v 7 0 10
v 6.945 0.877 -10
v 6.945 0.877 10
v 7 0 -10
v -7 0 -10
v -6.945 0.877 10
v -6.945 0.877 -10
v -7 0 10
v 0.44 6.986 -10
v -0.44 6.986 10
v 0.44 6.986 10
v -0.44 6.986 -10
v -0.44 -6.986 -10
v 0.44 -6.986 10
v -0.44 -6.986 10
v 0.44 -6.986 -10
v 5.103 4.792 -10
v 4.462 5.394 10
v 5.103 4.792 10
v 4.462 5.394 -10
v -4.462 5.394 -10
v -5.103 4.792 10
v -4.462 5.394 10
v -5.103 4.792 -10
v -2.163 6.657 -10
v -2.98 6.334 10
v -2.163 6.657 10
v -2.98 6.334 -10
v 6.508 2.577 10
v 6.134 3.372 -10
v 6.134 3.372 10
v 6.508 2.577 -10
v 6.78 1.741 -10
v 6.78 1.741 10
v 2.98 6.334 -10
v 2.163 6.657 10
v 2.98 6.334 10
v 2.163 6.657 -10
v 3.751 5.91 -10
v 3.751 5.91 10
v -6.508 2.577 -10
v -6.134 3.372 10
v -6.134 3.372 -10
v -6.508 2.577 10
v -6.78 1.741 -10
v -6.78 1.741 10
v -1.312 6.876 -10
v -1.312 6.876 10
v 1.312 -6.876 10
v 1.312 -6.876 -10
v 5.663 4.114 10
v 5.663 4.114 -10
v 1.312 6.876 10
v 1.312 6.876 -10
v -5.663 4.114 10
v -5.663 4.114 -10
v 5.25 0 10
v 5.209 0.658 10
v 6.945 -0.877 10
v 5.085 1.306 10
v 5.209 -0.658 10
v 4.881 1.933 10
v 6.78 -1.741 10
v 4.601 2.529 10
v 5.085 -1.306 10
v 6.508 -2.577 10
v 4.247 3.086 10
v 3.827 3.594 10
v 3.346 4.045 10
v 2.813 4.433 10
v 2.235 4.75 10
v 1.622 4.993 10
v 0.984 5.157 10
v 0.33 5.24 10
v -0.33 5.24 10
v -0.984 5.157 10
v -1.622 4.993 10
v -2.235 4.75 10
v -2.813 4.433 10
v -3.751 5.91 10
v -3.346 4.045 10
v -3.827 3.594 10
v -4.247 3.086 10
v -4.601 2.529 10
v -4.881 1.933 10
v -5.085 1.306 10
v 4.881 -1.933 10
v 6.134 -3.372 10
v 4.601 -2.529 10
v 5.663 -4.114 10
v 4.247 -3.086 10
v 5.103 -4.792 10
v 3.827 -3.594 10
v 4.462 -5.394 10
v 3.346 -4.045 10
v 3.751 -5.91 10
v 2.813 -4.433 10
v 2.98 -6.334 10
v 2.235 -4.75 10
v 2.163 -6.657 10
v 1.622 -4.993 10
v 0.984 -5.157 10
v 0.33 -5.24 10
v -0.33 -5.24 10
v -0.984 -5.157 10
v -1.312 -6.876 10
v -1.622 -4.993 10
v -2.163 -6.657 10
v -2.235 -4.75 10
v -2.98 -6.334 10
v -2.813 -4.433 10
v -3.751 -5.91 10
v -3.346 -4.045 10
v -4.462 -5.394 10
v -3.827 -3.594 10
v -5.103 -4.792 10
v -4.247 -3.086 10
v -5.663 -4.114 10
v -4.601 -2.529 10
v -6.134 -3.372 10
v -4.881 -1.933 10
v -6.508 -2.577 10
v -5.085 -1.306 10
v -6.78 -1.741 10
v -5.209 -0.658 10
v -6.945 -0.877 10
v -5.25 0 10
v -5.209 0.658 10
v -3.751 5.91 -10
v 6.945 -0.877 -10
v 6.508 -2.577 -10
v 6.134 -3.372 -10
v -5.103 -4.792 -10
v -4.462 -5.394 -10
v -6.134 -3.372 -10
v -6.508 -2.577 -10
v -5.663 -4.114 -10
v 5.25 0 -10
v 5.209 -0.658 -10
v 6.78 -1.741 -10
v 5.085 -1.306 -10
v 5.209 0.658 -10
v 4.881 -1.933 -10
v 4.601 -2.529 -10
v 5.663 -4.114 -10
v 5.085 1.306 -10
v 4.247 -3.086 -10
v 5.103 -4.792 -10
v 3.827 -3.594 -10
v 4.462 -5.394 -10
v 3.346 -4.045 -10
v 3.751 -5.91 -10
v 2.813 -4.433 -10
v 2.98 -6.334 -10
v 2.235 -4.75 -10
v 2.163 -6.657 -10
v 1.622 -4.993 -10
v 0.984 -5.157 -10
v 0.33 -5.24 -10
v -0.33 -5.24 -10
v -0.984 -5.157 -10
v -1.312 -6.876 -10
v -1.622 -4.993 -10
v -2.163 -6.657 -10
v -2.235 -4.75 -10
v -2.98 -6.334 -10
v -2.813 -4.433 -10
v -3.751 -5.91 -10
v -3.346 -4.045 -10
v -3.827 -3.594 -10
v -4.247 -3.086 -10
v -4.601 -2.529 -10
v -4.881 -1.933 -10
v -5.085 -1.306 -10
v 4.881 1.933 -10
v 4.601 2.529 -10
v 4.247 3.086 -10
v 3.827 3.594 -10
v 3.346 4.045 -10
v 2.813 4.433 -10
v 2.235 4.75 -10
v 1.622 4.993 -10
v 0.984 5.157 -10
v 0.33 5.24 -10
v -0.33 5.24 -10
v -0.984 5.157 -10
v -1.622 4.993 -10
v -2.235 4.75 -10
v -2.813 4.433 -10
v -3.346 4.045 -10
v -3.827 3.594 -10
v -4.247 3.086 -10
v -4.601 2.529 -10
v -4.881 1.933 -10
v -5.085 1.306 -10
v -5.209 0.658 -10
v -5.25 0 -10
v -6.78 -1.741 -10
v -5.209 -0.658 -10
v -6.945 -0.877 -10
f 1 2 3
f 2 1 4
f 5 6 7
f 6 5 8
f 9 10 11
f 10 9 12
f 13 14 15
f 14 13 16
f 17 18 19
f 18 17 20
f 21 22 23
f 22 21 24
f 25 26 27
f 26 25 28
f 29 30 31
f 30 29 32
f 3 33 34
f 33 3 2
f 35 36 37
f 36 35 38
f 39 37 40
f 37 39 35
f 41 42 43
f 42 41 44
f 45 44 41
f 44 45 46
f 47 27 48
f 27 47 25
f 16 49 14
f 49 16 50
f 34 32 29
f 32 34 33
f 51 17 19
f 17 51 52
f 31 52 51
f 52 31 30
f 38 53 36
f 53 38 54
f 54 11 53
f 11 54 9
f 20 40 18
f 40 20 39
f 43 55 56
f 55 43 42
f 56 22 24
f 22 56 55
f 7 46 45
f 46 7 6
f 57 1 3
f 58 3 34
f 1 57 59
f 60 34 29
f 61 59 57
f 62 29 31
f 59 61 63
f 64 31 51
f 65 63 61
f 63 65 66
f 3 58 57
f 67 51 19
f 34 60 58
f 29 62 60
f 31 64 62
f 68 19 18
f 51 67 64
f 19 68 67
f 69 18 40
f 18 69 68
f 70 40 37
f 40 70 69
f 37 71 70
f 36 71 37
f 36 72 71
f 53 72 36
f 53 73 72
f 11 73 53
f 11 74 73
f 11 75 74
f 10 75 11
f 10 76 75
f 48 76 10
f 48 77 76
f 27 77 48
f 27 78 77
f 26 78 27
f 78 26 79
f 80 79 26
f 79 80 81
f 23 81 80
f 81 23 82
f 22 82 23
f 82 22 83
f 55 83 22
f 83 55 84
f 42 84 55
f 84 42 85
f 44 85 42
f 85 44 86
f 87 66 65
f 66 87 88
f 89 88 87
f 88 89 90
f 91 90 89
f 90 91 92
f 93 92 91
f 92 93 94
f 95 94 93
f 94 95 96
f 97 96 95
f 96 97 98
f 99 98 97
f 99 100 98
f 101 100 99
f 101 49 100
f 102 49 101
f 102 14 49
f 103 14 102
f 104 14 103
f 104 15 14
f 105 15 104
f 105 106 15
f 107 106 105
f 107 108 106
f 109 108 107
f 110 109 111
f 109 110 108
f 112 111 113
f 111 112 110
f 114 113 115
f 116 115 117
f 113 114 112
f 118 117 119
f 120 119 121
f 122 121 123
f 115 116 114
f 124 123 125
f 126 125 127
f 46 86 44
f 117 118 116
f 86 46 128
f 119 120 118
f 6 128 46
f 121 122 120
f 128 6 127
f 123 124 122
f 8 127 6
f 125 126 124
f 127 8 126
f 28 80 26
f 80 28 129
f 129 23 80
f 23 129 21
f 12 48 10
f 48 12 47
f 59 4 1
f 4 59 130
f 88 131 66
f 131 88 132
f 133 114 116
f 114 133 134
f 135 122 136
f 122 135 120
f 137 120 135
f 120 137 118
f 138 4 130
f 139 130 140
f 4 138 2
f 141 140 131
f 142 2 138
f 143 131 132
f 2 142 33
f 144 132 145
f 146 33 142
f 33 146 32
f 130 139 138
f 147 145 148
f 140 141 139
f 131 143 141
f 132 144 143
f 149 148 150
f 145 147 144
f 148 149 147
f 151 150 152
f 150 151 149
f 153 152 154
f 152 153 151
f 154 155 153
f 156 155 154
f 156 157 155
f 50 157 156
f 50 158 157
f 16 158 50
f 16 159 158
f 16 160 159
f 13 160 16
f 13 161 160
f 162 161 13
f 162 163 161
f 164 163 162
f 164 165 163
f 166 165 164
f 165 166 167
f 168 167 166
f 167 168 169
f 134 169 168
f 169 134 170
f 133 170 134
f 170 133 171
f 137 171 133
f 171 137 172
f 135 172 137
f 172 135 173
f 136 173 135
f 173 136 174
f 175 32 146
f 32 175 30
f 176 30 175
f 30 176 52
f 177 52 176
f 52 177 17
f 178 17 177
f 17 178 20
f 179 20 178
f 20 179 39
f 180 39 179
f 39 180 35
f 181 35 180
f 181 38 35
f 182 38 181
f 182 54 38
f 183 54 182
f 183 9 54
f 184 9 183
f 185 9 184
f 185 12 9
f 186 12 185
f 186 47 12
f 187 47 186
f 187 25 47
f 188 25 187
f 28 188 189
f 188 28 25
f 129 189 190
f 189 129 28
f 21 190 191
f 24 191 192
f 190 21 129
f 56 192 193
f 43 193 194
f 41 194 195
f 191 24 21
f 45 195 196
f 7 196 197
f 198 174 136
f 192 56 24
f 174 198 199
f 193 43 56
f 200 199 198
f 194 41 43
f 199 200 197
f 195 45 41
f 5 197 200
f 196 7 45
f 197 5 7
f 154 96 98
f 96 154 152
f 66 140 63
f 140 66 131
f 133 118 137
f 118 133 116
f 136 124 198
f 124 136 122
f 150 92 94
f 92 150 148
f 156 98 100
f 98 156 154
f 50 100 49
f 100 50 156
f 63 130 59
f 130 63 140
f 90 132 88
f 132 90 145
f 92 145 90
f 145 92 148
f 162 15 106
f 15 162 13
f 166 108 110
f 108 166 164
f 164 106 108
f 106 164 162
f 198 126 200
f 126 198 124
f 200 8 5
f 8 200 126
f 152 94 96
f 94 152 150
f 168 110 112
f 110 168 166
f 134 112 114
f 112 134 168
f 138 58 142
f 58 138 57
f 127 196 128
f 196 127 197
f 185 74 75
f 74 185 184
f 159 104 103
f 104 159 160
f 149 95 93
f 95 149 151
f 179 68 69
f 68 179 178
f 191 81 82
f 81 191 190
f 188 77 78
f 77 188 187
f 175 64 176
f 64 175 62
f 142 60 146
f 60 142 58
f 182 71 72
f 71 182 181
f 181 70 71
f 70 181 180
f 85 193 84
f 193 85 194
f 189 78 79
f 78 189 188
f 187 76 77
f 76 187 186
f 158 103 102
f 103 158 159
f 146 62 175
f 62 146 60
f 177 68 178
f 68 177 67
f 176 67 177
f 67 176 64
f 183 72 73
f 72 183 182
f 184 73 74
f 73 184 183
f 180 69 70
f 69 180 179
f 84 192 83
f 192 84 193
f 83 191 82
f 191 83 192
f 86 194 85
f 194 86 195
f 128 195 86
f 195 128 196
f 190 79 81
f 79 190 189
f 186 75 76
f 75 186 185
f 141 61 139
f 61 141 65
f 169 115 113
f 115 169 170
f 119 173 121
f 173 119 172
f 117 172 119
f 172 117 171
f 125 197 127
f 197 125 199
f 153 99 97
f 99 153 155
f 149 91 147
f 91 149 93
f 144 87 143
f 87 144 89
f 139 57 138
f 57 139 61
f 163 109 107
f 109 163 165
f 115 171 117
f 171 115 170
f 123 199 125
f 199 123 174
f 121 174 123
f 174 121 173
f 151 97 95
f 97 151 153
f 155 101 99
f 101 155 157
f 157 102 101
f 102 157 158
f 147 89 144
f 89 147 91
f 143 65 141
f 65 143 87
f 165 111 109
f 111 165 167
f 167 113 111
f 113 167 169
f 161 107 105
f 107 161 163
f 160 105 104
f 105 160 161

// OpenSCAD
$fn = 50;


difference() {
	union() {
		translate(v = [0, 0, -10.0000000000]) {
			cylinder(h = 20, r = 7.0000000000);
		}
	}
	union() {
		translate(v = [0, 0, -100.0000000000]) {
			cylinder(h = 200, r = 5.2500000000);
		}
	}
}
